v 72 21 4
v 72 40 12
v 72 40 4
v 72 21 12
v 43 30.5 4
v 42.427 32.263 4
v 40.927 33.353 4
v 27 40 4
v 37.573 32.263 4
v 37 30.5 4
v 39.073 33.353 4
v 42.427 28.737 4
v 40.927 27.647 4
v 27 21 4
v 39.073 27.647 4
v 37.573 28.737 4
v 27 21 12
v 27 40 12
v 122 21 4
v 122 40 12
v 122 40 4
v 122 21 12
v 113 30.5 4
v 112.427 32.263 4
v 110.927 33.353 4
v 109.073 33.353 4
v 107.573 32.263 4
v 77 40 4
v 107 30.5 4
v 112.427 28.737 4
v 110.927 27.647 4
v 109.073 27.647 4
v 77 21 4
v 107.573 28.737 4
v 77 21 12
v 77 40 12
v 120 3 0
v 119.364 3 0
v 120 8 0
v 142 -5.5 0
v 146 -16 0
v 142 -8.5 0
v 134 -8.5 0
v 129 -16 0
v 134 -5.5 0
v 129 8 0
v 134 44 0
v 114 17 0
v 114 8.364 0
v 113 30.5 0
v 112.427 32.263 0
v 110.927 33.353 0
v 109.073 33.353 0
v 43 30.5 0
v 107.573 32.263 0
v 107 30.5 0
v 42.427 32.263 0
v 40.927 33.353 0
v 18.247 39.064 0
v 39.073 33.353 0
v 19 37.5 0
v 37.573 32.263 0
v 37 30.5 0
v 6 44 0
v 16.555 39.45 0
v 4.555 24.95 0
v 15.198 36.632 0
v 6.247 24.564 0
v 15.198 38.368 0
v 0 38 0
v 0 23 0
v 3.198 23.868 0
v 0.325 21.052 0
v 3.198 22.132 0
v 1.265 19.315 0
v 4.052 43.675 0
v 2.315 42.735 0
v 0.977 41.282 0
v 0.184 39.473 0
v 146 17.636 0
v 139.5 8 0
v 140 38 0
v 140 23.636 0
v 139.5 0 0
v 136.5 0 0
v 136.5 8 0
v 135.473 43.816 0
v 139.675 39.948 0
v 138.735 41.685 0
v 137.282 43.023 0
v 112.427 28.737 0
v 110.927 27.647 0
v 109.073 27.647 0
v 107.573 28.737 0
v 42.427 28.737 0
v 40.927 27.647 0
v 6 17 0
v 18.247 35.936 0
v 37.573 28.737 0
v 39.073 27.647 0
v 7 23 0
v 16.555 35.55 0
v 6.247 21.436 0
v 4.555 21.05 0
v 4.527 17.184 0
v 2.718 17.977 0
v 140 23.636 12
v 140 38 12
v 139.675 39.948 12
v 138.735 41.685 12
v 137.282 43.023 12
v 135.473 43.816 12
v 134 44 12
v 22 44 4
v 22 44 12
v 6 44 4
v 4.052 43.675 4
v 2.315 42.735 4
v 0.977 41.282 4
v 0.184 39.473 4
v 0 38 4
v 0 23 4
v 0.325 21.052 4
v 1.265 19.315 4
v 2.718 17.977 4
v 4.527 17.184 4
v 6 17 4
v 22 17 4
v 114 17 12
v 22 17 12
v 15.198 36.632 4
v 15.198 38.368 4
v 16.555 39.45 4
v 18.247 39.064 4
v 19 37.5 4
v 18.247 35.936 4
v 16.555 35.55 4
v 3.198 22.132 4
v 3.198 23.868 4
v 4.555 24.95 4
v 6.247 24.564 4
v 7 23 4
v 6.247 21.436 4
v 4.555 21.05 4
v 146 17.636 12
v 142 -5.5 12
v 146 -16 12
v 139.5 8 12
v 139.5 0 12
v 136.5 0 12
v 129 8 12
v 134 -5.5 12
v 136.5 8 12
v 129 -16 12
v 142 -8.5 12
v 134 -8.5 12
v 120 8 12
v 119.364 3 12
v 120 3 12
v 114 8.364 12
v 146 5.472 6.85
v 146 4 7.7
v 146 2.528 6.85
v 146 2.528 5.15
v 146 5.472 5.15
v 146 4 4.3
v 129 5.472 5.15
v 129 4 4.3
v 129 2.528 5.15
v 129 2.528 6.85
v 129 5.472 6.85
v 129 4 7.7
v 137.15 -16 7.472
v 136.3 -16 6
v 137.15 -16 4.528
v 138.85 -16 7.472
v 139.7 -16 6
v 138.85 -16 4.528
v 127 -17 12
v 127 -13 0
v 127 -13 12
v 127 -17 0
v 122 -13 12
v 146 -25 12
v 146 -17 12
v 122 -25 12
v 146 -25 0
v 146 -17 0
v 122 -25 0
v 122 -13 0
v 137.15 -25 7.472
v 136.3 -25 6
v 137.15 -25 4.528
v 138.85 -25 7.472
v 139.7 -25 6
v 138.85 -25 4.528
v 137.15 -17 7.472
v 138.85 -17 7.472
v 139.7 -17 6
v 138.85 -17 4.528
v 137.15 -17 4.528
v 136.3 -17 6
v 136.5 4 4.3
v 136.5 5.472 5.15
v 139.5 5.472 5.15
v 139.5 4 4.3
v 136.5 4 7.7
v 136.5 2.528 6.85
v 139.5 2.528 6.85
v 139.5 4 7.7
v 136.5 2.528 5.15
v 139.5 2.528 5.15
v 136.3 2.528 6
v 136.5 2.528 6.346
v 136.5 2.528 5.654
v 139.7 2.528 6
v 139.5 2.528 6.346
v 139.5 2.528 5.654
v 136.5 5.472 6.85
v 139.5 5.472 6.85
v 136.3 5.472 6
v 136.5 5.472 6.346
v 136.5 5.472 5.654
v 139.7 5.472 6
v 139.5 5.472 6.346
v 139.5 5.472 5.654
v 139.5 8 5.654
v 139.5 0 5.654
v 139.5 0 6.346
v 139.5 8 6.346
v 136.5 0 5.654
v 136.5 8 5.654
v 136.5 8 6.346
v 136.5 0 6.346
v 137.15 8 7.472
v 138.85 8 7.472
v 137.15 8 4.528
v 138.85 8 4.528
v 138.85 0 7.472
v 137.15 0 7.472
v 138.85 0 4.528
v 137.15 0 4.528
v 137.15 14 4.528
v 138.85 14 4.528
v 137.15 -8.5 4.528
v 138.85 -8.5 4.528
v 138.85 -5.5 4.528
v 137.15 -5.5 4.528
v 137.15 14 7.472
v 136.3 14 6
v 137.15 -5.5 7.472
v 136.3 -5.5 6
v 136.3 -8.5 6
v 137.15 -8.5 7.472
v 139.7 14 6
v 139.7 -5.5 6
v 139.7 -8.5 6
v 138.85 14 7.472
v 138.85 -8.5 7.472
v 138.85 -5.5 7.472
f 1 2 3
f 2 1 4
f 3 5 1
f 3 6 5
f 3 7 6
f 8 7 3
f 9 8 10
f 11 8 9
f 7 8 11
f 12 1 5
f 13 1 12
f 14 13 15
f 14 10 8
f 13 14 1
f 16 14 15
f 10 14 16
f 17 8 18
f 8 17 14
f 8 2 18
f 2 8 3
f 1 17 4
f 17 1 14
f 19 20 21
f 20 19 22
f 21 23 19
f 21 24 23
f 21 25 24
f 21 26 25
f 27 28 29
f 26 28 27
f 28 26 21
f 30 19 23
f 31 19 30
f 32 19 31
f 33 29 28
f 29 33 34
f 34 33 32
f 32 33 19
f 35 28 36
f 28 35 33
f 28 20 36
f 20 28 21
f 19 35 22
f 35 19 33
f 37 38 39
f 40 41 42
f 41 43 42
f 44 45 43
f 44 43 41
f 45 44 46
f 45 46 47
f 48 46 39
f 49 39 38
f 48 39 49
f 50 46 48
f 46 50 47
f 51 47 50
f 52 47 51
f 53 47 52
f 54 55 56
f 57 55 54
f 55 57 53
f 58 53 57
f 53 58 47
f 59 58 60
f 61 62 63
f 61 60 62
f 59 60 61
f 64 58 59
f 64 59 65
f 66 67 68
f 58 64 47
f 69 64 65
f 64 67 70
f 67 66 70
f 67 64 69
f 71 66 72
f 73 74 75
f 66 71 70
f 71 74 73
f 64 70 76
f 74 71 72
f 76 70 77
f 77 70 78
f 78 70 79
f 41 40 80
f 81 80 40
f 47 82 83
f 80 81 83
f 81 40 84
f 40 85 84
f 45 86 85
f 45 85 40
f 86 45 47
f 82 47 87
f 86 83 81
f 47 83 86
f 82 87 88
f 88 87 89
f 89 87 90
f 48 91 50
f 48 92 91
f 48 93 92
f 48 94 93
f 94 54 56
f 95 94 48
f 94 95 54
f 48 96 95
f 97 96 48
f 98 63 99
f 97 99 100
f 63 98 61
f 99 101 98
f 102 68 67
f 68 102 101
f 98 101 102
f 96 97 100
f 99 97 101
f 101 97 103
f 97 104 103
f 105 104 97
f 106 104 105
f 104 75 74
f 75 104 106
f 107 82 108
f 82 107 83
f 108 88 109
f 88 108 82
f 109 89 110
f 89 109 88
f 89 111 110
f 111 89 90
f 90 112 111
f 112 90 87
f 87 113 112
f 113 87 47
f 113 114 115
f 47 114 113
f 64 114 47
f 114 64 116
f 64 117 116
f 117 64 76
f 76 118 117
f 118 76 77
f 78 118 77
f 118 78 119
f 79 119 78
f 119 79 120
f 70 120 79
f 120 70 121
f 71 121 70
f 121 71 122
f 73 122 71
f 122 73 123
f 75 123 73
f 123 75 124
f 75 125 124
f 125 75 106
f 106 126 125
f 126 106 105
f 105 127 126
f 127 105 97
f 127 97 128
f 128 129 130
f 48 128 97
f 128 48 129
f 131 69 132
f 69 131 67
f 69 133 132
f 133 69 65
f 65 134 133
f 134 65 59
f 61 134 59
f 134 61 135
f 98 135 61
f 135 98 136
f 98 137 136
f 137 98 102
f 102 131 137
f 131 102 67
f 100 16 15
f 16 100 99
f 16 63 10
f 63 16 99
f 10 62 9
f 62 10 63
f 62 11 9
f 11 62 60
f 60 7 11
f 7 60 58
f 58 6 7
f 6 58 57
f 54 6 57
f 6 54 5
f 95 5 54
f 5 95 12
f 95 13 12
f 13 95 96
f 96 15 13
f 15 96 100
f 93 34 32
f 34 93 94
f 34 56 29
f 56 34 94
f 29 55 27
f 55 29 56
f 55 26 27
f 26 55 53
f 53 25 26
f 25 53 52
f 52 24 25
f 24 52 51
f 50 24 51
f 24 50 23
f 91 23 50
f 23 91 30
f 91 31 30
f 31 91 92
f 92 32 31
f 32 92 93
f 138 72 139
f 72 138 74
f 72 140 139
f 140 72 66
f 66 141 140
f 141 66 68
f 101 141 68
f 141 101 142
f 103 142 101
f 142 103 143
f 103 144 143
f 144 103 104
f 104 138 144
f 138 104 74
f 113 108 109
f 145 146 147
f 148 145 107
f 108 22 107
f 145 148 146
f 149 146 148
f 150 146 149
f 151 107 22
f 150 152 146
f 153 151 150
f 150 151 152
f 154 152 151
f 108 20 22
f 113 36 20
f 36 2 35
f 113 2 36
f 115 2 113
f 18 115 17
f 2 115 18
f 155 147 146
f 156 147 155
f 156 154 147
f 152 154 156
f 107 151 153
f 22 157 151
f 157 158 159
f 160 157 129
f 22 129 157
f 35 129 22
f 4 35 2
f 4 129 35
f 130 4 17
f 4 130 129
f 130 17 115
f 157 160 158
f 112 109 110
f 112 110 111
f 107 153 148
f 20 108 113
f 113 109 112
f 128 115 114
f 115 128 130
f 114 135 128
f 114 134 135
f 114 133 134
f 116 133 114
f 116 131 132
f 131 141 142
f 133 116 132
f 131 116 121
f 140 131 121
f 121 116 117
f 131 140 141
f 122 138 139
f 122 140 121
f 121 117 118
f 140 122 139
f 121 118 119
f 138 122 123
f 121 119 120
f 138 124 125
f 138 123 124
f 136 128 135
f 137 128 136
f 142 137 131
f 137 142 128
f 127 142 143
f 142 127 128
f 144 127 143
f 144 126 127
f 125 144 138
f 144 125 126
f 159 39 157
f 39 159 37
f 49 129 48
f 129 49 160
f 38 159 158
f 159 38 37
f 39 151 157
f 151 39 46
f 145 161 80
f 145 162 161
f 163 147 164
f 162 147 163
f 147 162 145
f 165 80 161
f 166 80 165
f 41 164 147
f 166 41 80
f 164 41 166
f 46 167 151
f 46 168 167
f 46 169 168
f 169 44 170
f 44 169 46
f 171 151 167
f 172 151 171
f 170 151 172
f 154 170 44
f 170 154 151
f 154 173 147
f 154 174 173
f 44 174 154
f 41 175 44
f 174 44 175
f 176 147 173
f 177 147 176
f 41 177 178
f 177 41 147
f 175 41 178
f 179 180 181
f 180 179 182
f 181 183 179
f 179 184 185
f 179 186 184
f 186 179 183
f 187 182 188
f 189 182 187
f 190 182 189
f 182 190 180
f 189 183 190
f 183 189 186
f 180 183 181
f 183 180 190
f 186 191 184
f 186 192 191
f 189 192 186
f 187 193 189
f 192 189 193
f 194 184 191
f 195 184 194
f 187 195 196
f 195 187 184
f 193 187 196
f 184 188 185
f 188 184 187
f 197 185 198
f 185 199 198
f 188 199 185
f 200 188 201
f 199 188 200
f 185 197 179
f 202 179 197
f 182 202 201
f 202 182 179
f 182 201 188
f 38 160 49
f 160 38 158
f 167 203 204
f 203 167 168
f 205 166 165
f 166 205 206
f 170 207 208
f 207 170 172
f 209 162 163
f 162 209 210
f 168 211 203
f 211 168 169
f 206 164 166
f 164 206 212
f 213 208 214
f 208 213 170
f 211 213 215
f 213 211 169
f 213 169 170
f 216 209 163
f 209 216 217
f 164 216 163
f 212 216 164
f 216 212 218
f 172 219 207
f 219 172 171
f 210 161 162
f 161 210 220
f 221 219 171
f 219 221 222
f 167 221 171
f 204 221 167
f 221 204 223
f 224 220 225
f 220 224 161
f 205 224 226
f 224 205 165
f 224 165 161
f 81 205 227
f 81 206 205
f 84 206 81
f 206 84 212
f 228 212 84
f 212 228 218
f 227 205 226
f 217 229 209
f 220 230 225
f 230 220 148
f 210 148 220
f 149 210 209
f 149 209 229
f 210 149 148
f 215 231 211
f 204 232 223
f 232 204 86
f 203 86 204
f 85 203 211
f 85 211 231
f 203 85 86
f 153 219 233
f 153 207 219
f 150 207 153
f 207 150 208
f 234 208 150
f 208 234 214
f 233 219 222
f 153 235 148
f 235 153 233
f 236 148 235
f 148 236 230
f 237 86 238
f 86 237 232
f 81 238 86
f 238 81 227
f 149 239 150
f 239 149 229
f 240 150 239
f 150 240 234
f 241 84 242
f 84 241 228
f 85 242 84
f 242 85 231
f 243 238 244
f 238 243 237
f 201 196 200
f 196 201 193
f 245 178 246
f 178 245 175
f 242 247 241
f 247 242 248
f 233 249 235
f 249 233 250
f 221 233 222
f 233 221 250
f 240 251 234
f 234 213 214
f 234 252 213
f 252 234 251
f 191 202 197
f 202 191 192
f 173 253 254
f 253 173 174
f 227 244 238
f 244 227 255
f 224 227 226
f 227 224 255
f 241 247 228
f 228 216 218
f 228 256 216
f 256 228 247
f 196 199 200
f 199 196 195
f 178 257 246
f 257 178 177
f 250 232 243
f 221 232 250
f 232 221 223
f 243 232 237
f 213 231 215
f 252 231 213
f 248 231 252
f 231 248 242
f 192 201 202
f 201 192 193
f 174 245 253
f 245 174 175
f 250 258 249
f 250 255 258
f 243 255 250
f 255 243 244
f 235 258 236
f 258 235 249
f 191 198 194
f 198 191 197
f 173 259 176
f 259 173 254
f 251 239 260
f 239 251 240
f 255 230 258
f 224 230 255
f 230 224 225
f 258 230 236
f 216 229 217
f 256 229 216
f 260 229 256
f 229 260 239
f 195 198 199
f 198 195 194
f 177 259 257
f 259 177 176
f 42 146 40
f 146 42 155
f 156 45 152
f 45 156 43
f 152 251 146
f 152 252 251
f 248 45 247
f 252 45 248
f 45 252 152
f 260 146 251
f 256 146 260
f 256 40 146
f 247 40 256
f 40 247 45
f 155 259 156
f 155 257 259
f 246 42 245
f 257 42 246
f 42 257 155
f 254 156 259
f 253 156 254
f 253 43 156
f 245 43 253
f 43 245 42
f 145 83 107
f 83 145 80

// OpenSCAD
// file: beaters/beaters.scad
translate([0,21,0]) stickTip();
kickBeater();

module kickBeater() difference(){
    $fn=60;
    union(){
        cylinder(r=16,h=10);
        translate([0,0,10]) scale([1,1,0.33]) sphere(16);
    }
    translate([0,0,-1]) cylinder(r=1.5,h=5);
}

module stickTip() difference(){
    $fn=60;
    translate([0,0,3]) scale([2,1,1]) sphere(4);
    translate([0,0,-2]) cylinder(r=8,h=2);
    rotate([0,10,0]) translate([0,0,-2]) cylinder(r=1.5,h=6);
}
// file: solenoid.scad
solenoid();

module solenoid(pos=false,type="JF0826B",_echo=false){
    position = pos ? 1 : 0;
    if(type=="JF0826B"){
        location = 12 - position * 10;
        color("silver") 
        difference(){
            cube([22,25,27]);
            translate([-1,2,2]) cube([24,21,22]);
            translate([4,-1,26]) cube([14,27,2]);
            translate([-1,2,26]) cube([24,21,2]);
            translate([11,12.5,-1]) cylinder(r=2,h=4);
            translate([11,12.5,3]) cylinder(r=4,h=27);
            translate([5,12.5,20.5]) 
                    rotate([-90,0,0]) cylinder(r=1.5,h=15);
            translate([17,12.5,6]) 
                    rotate([-90,0,0]) cylinder(r=1.5,h=15);
        }
        color("blue") translate([11,12.5,2]) difference(){
            cylinder(r=11,h=22);
            translate([0,0,-1]) cylinder(r=4,h=29);
        }
        color("silver") translate([11,12.5,location]) difference(){
        union(){
                cylinder(r=3.75,h=35);
                translate([0,0,26]) cylinder(r=6,h=1);
                translate([0,0,-15]) cylinder(r=1.7,h=16);
                translate([0,0,-15]) cylinder(r=3,h=3);
                translate([0,0,-15]) sphere(3);
            }
            translate([-5,-1.2,28]) cube([10,2.4,10]);
            translate([0,5,31]) rotate([90,0,0]) cylinder(r=1.25,h=10);
        }
        if(_echo){
            echo("position",position);
            echo("type",type);
            echo("throw (mm)",10);
            echo("width (Xmm)",22);
            echo("depth (Ymm)",25);
            echo("height (Zmm)",27);
            echo("HOA (Zmm, nut to top of shaft)",55);
            echo("mount holes (Dmm)",3);
            echo("mount apacing (XxZmm)",
                 "12x12 at...\n\t5 from vertical edge,\n\t6 from bottom edge.");
        }
    }
}
// main file
use <solenoid.scad>
use <beaters/beaters.scad>

arm();
//translate([0,17,4]) snareSolenoid();

module arm(){
    translate([0,17]) difference(){
        linear_extrude(height=12) difference(){
            offset(6) offset(-6)square([140,27]);
            translate([17,20.5]) circle(2);
            translate([5,6]) circle(2);
            for(x=[40,110]) translate([x,13.5]) circle(3);
        }
        translate([-1,-1,4]) cube([23,29,9]);
        for(x=[27,77]) translate([x,4,4]) cube([45,19,9]);
    }
    difference(){
        union(){
            translate([114,3,0]) cube([6,15,12]);
            translate([120,8,0]) cube([10,12,12]);
            translate([129,-16,0]) cube([17,40,12]);
            translate([122,-25,0]) cube([5,12,12]);
            translate([124,-25,0]) cube([22,8,12]);
        }
        translate([113,3,4]) 
                rotate([0,0,45]) cube([9,9,146],center=true);
        translate([121,4,6]) rotate([0,90,0]) cylinder(r=1.7,h=40);
        translate([138,4,6]) cube([3,8,16],center=true);
        translate([138,-26,6]) rotate([-90,0,0]) cylinder(r=1.7,h=40);
        translate([138,-7,6]) cube([8,3,16],center=true);
        translate([146,24,6]) 
                rotate([0,0,45]) cube([9,9,146],center=true);
    }
}

module snareSolenoid(state=false) translate([0,0,25]) rotate([-90,0,0]){
    value = state ? -11 : -4;
    solenoid();
    translate([11,12.5,value]) mirror([0,0,1]) rotate([0,-10,0]) stickTip();
}
